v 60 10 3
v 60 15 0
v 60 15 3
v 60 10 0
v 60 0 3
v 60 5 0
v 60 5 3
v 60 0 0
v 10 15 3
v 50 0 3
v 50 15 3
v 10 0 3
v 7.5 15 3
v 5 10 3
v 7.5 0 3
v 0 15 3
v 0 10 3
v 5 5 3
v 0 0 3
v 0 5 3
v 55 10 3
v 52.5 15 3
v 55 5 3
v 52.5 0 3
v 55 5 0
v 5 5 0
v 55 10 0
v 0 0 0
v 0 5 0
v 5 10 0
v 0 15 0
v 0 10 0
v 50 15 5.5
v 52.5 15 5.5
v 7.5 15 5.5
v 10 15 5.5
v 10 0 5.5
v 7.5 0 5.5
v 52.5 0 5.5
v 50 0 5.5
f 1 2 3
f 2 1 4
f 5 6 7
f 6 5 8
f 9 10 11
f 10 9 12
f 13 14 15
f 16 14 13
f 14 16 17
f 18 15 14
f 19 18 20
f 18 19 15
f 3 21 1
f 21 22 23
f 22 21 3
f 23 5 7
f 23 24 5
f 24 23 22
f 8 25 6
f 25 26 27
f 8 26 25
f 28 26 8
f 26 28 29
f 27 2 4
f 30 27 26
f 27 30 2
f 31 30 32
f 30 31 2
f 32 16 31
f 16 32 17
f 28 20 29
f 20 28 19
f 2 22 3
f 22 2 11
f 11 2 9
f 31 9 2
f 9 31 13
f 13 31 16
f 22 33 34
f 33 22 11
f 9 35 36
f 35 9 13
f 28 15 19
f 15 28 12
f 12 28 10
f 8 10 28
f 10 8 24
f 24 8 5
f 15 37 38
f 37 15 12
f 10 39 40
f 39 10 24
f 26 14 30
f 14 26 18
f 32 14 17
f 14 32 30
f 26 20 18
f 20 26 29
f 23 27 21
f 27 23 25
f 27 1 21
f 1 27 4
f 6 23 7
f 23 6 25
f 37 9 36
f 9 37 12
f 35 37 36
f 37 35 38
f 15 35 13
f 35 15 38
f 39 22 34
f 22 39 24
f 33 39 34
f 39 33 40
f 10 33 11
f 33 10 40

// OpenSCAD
piwidth = 40;

width = 60;
depth = 15;
height = 3;

cutout = 5;

rail = 2.5;

union() {
    difference() {
        cube([width, depth, height]);
        translate([0,cutout,0]) {
            cube([cutout,cutout,height]);
        }
        translate([width-cutout,cutout,0]) {
            cube([cutout,cutout,height]);
        }
    }
    translate([(width-piwidth)/2 -rail, 0, height]) {
        cube([rail, depth, rail]);
    }
    translate([piwidth+(width-piwidth)/2, 0, height]) {
        cube([rail, depth, rail]);
    }
}
